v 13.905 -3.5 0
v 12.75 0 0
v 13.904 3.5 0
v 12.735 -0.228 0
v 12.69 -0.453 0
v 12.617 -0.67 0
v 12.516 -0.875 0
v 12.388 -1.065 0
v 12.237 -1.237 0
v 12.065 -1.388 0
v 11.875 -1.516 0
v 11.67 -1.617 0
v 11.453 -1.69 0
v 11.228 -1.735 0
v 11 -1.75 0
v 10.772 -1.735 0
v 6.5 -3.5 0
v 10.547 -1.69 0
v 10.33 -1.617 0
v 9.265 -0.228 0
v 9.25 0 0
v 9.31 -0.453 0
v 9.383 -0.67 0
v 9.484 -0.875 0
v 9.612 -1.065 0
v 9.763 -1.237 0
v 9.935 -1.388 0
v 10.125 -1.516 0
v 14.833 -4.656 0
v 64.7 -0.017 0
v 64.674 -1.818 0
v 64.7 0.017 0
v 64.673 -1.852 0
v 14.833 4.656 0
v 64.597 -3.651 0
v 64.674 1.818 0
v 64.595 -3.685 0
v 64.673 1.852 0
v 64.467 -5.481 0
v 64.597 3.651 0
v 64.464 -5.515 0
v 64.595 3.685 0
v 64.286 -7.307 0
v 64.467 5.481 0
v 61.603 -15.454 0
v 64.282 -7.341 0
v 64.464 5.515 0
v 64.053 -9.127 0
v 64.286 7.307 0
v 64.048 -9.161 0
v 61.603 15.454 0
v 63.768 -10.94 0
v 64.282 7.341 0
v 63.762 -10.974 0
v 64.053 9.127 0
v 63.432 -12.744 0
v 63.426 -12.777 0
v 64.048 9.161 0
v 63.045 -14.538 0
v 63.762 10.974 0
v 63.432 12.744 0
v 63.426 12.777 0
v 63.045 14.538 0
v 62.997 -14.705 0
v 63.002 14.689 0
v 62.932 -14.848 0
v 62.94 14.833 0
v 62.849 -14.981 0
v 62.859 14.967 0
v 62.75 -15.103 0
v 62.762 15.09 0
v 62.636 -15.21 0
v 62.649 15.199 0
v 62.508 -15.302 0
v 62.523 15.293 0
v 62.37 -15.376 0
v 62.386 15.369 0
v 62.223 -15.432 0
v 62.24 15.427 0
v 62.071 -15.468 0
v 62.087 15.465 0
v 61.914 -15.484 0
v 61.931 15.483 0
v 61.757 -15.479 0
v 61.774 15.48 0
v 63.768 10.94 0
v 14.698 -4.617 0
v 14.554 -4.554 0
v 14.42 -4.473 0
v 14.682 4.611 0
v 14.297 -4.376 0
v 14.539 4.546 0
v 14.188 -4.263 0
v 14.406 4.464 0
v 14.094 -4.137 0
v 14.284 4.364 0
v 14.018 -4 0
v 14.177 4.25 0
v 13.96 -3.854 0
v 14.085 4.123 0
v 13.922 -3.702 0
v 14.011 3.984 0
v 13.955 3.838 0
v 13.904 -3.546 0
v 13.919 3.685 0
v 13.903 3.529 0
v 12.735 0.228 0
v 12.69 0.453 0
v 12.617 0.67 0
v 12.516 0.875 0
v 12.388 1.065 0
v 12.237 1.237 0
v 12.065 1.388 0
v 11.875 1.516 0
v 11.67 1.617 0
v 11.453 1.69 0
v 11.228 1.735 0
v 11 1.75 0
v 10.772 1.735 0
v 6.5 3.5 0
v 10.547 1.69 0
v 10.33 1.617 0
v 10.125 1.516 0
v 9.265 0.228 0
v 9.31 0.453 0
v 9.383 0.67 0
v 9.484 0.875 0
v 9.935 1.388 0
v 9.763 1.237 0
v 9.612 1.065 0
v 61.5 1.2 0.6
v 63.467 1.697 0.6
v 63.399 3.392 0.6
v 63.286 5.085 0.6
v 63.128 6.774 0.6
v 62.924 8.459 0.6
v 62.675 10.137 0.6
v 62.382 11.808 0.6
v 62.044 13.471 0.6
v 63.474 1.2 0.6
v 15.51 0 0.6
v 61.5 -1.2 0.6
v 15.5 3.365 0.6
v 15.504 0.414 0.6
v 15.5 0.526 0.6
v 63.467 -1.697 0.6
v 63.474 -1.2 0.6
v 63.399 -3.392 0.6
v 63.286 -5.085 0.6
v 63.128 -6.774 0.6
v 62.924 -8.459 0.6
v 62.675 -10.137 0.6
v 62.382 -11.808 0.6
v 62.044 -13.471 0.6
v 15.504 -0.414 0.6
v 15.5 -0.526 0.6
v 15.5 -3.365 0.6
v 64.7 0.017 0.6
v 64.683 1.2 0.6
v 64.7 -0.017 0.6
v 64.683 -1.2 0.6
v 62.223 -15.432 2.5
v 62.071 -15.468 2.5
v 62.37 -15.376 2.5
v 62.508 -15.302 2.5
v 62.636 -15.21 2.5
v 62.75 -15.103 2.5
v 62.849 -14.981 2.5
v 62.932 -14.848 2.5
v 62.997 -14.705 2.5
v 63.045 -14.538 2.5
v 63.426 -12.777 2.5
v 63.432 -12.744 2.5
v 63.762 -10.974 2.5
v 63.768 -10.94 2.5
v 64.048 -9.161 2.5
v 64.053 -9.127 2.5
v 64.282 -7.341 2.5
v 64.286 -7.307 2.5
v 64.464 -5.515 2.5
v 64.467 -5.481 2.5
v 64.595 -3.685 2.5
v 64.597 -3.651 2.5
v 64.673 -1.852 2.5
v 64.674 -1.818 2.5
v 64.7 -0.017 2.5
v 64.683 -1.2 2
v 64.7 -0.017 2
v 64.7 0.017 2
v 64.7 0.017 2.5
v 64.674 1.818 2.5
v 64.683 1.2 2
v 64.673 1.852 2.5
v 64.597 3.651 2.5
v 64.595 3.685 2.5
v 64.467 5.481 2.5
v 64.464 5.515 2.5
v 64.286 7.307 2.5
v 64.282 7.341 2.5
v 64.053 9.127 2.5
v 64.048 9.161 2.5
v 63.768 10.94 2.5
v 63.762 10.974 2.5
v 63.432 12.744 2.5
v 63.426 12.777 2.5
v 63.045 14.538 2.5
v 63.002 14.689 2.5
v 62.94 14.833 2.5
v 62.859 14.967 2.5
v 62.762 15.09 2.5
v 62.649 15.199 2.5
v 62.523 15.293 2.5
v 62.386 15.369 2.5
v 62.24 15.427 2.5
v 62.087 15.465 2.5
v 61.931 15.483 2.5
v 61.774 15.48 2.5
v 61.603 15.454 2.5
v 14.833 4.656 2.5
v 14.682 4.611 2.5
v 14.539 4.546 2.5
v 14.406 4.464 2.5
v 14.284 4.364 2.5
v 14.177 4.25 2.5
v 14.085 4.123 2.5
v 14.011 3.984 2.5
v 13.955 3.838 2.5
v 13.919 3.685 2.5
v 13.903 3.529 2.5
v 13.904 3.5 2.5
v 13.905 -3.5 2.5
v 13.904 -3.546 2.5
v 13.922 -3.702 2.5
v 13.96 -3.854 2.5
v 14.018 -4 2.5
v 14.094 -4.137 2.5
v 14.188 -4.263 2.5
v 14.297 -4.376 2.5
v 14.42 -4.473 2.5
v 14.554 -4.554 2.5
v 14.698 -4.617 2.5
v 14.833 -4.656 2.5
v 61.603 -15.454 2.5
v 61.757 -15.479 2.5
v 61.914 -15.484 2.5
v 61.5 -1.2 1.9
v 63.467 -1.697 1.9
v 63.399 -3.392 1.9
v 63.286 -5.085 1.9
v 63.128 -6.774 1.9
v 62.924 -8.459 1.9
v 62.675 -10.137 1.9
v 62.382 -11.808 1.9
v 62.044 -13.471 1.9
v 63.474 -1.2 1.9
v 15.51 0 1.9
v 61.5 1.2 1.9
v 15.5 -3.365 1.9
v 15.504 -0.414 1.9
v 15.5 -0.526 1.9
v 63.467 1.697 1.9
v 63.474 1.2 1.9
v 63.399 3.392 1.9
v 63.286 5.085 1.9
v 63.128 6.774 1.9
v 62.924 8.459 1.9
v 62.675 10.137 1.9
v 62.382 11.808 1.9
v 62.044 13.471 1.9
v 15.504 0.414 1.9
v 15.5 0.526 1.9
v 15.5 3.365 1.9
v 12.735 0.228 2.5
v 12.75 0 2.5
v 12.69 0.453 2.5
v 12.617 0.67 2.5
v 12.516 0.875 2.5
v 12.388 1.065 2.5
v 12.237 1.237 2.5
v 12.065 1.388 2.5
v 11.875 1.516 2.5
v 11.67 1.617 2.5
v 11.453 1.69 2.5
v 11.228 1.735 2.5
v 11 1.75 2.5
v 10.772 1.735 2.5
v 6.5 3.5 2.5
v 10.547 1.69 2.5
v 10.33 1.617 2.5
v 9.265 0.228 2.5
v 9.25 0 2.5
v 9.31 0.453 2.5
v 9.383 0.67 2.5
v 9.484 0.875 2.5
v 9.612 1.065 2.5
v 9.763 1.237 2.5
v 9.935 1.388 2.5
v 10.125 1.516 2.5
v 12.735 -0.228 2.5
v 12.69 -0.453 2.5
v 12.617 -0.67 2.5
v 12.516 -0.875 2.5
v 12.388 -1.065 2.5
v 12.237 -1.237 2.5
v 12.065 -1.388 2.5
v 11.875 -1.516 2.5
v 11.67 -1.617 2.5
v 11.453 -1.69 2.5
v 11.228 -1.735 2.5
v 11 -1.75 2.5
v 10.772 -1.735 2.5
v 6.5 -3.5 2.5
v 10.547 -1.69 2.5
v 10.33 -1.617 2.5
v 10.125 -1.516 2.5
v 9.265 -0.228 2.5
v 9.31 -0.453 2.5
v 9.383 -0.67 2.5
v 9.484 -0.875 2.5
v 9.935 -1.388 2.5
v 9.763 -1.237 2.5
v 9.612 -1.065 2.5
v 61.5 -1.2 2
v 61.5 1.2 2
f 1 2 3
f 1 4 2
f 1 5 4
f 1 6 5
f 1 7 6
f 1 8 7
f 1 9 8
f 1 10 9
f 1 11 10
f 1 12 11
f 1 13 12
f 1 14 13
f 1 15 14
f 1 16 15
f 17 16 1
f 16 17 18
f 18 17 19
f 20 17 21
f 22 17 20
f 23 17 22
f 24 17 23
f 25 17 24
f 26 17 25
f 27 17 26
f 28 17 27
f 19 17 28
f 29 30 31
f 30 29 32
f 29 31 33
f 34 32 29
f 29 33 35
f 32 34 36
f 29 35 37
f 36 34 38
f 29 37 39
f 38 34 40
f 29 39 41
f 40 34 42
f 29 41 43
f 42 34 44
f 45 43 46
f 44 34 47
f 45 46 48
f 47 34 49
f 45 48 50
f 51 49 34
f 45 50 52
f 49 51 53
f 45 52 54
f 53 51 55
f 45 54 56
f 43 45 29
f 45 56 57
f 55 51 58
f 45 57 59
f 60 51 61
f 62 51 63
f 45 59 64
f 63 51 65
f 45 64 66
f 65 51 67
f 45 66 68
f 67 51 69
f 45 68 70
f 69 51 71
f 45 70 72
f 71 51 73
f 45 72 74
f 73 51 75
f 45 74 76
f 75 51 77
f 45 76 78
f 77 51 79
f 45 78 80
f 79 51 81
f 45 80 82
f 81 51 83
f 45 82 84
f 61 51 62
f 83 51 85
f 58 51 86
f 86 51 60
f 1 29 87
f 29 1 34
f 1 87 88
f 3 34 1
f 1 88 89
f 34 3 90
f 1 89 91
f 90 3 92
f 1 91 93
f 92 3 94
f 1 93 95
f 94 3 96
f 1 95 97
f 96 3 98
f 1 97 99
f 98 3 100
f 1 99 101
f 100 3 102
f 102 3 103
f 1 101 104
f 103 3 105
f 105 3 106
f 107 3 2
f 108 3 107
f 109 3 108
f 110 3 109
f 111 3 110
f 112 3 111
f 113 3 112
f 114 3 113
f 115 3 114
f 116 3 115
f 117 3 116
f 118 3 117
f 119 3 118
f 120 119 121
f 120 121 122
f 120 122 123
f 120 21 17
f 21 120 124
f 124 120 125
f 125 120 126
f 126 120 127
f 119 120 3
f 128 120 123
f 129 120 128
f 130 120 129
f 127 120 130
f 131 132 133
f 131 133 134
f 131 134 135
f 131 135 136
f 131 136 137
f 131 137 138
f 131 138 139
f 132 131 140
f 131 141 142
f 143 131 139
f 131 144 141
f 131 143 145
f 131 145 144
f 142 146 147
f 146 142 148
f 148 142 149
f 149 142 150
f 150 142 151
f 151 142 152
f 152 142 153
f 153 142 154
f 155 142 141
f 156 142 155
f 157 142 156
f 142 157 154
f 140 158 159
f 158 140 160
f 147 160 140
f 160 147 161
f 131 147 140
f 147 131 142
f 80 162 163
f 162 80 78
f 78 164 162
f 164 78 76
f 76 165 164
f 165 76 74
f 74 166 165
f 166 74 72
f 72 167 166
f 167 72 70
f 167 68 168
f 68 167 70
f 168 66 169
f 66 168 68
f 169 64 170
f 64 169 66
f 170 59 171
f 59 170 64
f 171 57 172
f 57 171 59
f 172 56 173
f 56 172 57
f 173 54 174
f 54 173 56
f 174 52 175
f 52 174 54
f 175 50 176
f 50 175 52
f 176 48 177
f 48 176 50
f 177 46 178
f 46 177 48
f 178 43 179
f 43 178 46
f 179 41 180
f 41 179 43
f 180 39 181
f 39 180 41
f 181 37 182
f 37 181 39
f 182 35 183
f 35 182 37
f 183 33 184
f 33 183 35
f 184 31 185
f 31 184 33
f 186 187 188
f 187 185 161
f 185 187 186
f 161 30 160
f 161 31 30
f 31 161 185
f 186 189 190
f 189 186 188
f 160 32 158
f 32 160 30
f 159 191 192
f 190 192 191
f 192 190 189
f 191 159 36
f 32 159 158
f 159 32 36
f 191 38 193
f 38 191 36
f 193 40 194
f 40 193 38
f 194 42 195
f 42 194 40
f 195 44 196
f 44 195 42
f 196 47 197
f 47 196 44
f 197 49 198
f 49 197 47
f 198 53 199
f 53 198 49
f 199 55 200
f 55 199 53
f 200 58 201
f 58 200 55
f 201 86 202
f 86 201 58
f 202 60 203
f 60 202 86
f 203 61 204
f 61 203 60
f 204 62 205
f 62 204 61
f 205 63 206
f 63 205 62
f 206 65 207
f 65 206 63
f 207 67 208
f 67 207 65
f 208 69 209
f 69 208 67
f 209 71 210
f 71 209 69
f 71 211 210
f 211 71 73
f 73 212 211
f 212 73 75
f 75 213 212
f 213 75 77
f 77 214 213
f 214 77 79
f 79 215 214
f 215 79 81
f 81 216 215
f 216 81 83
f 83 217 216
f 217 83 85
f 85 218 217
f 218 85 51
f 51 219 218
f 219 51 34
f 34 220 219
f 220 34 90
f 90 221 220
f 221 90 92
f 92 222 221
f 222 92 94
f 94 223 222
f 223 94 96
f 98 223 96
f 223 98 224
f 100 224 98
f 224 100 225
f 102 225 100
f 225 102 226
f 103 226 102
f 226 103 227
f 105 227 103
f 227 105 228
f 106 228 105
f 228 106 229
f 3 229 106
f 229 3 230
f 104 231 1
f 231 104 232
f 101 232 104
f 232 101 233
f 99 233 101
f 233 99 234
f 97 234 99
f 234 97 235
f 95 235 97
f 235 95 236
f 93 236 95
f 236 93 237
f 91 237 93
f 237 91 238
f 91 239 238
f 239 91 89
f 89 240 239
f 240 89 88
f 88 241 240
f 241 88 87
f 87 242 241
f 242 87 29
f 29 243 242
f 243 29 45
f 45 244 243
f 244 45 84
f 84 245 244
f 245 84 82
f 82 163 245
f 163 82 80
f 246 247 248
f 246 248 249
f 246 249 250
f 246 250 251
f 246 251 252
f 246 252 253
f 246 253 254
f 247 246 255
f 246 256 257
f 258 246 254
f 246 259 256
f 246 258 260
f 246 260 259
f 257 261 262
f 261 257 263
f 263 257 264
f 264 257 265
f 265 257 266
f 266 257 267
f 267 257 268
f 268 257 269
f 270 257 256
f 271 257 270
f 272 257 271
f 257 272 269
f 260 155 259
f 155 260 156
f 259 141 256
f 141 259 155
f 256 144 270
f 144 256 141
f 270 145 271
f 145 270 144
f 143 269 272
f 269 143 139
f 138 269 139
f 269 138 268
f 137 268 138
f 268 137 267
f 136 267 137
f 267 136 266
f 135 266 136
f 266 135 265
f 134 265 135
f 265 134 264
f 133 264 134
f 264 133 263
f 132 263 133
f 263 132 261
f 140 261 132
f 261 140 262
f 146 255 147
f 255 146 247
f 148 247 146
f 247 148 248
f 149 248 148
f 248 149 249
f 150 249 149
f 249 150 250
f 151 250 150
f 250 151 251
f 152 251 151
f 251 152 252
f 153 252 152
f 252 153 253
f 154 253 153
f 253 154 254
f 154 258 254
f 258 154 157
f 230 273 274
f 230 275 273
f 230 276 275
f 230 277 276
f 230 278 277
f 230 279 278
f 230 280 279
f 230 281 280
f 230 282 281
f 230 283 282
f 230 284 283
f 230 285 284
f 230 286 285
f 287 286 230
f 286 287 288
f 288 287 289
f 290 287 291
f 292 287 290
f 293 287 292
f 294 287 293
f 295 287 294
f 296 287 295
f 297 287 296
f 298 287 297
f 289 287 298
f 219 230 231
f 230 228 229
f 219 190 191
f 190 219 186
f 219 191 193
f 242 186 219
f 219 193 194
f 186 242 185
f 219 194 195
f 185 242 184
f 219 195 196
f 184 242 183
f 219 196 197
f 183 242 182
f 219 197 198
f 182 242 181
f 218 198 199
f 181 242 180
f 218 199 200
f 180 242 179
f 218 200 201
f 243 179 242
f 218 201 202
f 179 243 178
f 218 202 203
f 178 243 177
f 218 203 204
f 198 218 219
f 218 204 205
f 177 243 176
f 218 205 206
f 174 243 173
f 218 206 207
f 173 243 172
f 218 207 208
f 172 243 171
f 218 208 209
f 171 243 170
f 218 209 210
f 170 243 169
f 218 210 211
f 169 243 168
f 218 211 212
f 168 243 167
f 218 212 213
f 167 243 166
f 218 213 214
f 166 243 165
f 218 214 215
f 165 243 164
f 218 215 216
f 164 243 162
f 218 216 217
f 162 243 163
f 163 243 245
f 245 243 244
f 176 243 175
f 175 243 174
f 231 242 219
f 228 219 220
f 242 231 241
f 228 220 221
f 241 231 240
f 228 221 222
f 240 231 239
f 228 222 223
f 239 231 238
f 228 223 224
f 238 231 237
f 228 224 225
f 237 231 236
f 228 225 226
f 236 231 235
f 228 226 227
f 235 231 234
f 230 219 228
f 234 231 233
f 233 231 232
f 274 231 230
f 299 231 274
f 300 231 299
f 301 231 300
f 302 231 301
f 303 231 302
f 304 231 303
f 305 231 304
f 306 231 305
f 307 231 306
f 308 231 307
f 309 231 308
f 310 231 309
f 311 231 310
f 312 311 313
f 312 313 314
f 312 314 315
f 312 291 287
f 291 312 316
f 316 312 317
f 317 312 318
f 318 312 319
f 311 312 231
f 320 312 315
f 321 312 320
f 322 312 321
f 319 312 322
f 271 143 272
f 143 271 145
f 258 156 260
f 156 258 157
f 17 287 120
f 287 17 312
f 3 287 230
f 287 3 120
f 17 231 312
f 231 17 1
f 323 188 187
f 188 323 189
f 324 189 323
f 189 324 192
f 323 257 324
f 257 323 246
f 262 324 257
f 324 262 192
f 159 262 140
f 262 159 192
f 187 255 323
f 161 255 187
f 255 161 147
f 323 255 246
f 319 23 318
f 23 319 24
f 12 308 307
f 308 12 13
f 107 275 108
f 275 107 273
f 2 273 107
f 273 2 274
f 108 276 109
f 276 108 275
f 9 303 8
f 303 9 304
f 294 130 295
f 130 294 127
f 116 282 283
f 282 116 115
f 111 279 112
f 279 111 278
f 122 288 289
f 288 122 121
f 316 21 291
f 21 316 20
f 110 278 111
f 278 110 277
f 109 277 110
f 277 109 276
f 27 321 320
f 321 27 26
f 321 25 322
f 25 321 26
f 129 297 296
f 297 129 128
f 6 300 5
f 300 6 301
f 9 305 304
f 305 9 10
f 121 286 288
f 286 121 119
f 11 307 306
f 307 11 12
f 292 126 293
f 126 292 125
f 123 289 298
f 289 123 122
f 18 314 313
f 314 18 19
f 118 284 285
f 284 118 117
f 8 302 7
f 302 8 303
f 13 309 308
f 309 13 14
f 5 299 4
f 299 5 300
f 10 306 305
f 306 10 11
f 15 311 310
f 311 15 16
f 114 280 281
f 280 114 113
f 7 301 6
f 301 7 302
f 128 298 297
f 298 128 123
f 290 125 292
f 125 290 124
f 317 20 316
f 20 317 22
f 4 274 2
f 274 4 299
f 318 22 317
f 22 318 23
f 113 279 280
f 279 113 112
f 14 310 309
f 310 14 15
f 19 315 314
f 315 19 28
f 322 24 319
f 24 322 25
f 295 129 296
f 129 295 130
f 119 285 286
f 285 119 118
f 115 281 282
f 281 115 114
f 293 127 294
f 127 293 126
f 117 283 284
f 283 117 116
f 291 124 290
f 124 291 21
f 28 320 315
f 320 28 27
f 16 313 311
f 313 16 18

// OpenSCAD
// file: parameters.scad
// =============================================================================
// Gen-AN Dual-rotor copper-centroid hyper AFPM - WOUND-AWARE (HARD GATE)
// PRIMARY challenger vs Gen-AK. Magnets @ R=39.5 + 200 t + former_web 1.30 -> m2m 4.76.
// =============================================================================

// --- Wire / wind budget (26 AWG, ~1 lb spool ~ 390 m bare-equiv) --------------
wire_awg            = 26;
wire_od             = 0.45;     // insulated OD mm
turns               = 200;      // +10 vs Gen-AK 190
fill                = 0.70;
layers_per_face     = 2;        // axial layers proud of EACH flange
wind_build_axial    = layers_per_face * wire_od * fill;   // 0.63 mm
wind_build_radial   = 3 * wire_od * fill;                 // 0.945 mm

// --- Pancake former (bare STL) -----------------------------------------------
coil_id_r           = 15.5;     // copper-centroid window centered ~R=39.5
coil_od_r           = 63.5;
span_deg            = 26.0;     // 12 stations x 30 deg pitch
former_web          = 1.30;     // thinner vs AK 1.40 (print-safe >=1.30)
flange_t            = 0.60;
wall                = 1.2;
slot_w              = 2.4;
mount_hole          = 3.5;
tab_len             = 7.0;

former_bare_h       = former_web + 2 * flange_t;            // 2.50 mm
coil_envelope_h     = former_bare_h + 2 * wind_build_axial; // 3.76 mm

// --- Running clearance (magnet face -> WOUND face) EACH side ------------------
run_clear           = 0.50;     // PASS floor >= 0.5
gap_spacer_h        = run_clear + wind_build_axial;         // 1.13 mm
m2m                 = coil_envelope_h + 2 * run_clear;      // 4.76 mm (beats Gen-AK 4.86)

// --- Mid stator (12 pancakes 3ph; winds proud both faces) ---------------------
coil_stations       = 12;
bay_r_in            = coil_id_r - 2.0 - wind_build_radial;
bay_r_out           = coil_od_r + 2.0 + wind_build_radial;
bay_span            = span_deg + 4.0;
bay_offset          = 2.0;
stator_thick        = former_bare_h;                        // winds proud +/-Z
stator_od           = 160.0;
shaft_clear_stator  = 34.0;
coil_mount_r        = 25.5;

// --- Rotors (x2) - 8xO20 @ R=39.5 (copper centroid) + 24xO5 Halbach ----------
large_pocket_d      = 20.3;
small_pocket_d      = 5.3;
pocket_h            = 5.2;
large_n             = 8;
R_large             = 39.5;     // covers ~29.5-49.5 over copper centroid ~39.5
R_small_inner       = 24.5;
R_small_mid         = 39.5;
R_small_outer       = 56.5;
carrier_od          = 156.0;
carrier_thick       = 7.5;
hub_h               = 10.0;
hub_od              = 30.0;
rotor_b_offset_deg  = 22.5;

// --- Modular MAX interface (Gen-E family) ------------------------------------
shaft_bore          = 8.35;
bearing_d           = 21.85;
bearing_h           = 7.2;
m3_clear            = 3.5;
bolt_r_inner        = 36.0;
bolt_n_inner        = 6;
flange_bolt_r       = 72.0;
flange_bolt_n       = 6;
brace_r             = 68.0;
brace_d             = 4.3;
brace_n             = 4;

spacer_pad_od       = 14.0;
spacer_pad_id       = m3_clear;
endbell_od          = 160.0;
endbell_thick       = 8.0;
endbell_shaft_clear = 10.0;

$fn = 64;
// main file
// Gen-AN pancake former — wind BEFORE assembly
include <parameters.scad>;
$fn = 48;

module sector_2d(r_in, r_out, ang) {
    polygon([
        for (a = [-ang/2 : ang/16 : ang/2]) [r_in*cos(a), r_in*sin(a)],
        for (a = [ang/2 : -ang/16 : -ang/2]) [r_out*cos(a), r_out*sin(a)]
    ]);
}
module flange() {
    linear_extrude(flange_t) offset(r=wall) sector_2d(coil_id_r, coil_od_r, span_deg);
}
difference() {
    union() {
        flange();
        translate([0, 0, flange_t])
            linear_extrude(former_web)
                difference() {
                    offset(r=wall) sector_2d(coil_id_r, coil_od_r, span_deg);
                    sector_2d(coil_id_r + 0.01, coil_od_r - 0.01, span_deg - 1.5);
                }
        translate([0, 0, flange_t + former_web]) flange();
        translate([coil_id_r - tab_len - 2, -3.5, 0])
            cube([tab_len + 2, 7, former_bare_h]);
    }
    translate([coil_od_r - 2, -slot_w/2, flange_t])
        cube([wall + 4, slot_w, former_web + 0.1]);
    translate([coil_id_r - tab_len/2 - 1, 0, -0.1])
        cylinder(d=mount_hole, h=former_bare_h + 1);
}
